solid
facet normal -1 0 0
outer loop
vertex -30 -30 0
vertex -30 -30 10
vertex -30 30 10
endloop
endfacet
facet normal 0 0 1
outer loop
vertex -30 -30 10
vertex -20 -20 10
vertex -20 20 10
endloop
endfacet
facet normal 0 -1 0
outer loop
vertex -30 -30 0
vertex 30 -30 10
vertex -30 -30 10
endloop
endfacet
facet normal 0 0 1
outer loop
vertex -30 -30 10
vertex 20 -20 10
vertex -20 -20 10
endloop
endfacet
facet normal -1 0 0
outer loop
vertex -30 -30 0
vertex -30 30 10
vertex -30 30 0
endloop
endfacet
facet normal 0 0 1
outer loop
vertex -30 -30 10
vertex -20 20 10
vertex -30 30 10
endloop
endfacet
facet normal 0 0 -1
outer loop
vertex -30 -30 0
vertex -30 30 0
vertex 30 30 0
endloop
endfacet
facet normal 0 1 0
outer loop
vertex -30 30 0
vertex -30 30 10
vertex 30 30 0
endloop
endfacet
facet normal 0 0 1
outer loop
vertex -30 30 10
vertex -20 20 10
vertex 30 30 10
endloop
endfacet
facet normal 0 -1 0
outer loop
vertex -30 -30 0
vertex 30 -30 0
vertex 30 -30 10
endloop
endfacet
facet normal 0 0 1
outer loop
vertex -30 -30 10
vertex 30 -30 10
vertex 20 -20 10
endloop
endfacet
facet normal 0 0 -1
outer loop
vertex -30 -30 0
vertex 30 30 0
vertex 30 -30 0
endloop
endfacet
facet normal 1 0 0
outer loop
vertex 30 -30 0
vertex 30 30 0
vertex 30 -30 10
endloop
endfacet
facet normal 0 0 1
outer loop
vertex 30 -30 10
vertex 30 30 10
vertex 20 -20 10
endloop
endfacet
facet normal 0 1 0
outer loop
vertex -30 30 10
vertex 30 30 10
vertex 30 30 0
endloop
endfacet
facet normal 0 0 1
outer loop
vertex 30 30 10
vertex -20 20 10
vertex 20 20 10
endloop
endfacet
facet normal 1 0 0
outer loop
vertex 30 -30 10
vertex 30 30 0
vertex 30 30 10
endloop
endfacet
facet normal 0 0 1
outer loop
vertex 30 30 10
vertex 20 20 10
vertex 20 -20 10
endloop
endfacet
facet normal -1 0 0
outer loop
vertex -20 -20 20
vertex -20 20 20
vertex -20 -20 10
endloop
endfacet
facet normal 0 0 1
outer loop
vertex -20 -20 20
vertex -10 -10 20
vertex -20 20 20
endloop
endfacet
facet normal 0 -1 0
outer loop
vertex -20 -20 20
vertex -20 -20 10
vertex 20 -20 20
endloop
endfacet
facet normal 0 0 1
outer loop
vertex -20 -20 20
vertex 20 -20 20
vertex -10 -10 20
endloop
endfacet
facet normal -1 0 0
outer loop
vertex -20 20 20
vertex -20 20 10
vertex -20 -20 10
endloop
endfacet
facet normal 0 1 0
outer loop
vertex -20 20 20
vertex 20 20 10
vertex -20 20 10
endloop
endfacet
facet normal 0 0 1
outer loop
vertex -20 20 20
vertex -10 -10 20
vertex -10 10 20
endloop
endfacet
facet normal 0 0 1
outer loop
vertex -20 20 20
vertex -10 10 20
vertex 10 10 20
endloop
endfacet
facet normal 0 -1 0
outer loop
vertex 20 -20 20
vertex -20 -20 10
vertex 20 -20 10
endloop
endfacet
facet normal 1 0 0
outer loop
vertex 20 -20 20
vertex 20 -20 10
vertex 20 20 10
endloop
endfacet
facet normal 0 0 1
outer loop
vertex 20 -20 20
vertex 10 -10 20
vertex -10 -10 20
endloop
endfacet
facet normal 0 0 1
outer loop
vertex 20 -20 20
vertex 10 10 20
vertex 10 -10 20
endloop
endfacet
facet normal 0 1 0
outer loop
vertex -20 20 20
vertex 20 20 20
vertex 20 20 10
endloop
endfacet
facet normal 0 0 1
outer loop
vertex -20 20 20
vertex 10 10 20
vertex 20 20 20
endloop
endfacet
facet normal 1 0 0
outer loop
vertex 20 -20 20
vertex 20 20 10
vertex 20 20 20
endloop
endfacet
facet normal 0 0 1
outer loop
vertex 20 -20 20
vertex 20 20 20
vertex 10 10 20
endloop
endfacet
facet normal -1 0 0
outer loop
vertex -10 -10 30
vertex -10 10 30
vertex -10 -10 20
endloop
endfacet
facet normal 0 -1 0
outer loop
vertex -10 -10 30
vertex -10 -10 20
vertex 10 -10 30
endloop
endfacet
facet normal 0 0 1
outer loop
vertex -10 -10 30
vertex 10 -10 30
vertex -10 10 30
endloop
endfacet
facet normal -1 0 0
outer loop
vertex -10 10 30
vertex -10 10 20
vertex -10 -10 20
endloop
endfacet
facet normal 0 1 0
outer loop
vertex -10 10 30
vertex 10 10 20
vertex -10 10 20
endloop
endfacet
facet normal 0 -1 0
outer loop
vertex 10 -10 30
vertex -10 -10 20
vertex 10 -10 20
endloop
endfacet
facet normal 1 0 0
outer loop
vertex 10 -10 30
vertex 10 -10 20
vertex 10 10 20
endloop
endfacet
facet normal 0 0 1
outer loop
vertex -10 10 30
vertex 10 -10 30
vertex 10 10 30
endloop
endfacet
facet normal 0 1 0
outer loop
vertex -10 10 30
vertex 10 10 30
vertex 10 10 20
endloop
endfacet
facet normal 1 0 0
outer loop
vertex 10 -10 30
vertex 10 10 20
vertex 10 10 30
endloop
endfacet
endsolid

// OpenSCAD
union() {
    // Bottom layer: 60x60x10
    translate([0, 0, 5])
        cube([60, 60, 10], center=true);

    // Middle layer: 40x40x10
    translate([0, 0, 15])
        cube([40, 40, 10], center=true);

    // Top layer: 20x20x10
    translate([0, 0, 25])
        cube([20, 20, 10], center=true);
}
